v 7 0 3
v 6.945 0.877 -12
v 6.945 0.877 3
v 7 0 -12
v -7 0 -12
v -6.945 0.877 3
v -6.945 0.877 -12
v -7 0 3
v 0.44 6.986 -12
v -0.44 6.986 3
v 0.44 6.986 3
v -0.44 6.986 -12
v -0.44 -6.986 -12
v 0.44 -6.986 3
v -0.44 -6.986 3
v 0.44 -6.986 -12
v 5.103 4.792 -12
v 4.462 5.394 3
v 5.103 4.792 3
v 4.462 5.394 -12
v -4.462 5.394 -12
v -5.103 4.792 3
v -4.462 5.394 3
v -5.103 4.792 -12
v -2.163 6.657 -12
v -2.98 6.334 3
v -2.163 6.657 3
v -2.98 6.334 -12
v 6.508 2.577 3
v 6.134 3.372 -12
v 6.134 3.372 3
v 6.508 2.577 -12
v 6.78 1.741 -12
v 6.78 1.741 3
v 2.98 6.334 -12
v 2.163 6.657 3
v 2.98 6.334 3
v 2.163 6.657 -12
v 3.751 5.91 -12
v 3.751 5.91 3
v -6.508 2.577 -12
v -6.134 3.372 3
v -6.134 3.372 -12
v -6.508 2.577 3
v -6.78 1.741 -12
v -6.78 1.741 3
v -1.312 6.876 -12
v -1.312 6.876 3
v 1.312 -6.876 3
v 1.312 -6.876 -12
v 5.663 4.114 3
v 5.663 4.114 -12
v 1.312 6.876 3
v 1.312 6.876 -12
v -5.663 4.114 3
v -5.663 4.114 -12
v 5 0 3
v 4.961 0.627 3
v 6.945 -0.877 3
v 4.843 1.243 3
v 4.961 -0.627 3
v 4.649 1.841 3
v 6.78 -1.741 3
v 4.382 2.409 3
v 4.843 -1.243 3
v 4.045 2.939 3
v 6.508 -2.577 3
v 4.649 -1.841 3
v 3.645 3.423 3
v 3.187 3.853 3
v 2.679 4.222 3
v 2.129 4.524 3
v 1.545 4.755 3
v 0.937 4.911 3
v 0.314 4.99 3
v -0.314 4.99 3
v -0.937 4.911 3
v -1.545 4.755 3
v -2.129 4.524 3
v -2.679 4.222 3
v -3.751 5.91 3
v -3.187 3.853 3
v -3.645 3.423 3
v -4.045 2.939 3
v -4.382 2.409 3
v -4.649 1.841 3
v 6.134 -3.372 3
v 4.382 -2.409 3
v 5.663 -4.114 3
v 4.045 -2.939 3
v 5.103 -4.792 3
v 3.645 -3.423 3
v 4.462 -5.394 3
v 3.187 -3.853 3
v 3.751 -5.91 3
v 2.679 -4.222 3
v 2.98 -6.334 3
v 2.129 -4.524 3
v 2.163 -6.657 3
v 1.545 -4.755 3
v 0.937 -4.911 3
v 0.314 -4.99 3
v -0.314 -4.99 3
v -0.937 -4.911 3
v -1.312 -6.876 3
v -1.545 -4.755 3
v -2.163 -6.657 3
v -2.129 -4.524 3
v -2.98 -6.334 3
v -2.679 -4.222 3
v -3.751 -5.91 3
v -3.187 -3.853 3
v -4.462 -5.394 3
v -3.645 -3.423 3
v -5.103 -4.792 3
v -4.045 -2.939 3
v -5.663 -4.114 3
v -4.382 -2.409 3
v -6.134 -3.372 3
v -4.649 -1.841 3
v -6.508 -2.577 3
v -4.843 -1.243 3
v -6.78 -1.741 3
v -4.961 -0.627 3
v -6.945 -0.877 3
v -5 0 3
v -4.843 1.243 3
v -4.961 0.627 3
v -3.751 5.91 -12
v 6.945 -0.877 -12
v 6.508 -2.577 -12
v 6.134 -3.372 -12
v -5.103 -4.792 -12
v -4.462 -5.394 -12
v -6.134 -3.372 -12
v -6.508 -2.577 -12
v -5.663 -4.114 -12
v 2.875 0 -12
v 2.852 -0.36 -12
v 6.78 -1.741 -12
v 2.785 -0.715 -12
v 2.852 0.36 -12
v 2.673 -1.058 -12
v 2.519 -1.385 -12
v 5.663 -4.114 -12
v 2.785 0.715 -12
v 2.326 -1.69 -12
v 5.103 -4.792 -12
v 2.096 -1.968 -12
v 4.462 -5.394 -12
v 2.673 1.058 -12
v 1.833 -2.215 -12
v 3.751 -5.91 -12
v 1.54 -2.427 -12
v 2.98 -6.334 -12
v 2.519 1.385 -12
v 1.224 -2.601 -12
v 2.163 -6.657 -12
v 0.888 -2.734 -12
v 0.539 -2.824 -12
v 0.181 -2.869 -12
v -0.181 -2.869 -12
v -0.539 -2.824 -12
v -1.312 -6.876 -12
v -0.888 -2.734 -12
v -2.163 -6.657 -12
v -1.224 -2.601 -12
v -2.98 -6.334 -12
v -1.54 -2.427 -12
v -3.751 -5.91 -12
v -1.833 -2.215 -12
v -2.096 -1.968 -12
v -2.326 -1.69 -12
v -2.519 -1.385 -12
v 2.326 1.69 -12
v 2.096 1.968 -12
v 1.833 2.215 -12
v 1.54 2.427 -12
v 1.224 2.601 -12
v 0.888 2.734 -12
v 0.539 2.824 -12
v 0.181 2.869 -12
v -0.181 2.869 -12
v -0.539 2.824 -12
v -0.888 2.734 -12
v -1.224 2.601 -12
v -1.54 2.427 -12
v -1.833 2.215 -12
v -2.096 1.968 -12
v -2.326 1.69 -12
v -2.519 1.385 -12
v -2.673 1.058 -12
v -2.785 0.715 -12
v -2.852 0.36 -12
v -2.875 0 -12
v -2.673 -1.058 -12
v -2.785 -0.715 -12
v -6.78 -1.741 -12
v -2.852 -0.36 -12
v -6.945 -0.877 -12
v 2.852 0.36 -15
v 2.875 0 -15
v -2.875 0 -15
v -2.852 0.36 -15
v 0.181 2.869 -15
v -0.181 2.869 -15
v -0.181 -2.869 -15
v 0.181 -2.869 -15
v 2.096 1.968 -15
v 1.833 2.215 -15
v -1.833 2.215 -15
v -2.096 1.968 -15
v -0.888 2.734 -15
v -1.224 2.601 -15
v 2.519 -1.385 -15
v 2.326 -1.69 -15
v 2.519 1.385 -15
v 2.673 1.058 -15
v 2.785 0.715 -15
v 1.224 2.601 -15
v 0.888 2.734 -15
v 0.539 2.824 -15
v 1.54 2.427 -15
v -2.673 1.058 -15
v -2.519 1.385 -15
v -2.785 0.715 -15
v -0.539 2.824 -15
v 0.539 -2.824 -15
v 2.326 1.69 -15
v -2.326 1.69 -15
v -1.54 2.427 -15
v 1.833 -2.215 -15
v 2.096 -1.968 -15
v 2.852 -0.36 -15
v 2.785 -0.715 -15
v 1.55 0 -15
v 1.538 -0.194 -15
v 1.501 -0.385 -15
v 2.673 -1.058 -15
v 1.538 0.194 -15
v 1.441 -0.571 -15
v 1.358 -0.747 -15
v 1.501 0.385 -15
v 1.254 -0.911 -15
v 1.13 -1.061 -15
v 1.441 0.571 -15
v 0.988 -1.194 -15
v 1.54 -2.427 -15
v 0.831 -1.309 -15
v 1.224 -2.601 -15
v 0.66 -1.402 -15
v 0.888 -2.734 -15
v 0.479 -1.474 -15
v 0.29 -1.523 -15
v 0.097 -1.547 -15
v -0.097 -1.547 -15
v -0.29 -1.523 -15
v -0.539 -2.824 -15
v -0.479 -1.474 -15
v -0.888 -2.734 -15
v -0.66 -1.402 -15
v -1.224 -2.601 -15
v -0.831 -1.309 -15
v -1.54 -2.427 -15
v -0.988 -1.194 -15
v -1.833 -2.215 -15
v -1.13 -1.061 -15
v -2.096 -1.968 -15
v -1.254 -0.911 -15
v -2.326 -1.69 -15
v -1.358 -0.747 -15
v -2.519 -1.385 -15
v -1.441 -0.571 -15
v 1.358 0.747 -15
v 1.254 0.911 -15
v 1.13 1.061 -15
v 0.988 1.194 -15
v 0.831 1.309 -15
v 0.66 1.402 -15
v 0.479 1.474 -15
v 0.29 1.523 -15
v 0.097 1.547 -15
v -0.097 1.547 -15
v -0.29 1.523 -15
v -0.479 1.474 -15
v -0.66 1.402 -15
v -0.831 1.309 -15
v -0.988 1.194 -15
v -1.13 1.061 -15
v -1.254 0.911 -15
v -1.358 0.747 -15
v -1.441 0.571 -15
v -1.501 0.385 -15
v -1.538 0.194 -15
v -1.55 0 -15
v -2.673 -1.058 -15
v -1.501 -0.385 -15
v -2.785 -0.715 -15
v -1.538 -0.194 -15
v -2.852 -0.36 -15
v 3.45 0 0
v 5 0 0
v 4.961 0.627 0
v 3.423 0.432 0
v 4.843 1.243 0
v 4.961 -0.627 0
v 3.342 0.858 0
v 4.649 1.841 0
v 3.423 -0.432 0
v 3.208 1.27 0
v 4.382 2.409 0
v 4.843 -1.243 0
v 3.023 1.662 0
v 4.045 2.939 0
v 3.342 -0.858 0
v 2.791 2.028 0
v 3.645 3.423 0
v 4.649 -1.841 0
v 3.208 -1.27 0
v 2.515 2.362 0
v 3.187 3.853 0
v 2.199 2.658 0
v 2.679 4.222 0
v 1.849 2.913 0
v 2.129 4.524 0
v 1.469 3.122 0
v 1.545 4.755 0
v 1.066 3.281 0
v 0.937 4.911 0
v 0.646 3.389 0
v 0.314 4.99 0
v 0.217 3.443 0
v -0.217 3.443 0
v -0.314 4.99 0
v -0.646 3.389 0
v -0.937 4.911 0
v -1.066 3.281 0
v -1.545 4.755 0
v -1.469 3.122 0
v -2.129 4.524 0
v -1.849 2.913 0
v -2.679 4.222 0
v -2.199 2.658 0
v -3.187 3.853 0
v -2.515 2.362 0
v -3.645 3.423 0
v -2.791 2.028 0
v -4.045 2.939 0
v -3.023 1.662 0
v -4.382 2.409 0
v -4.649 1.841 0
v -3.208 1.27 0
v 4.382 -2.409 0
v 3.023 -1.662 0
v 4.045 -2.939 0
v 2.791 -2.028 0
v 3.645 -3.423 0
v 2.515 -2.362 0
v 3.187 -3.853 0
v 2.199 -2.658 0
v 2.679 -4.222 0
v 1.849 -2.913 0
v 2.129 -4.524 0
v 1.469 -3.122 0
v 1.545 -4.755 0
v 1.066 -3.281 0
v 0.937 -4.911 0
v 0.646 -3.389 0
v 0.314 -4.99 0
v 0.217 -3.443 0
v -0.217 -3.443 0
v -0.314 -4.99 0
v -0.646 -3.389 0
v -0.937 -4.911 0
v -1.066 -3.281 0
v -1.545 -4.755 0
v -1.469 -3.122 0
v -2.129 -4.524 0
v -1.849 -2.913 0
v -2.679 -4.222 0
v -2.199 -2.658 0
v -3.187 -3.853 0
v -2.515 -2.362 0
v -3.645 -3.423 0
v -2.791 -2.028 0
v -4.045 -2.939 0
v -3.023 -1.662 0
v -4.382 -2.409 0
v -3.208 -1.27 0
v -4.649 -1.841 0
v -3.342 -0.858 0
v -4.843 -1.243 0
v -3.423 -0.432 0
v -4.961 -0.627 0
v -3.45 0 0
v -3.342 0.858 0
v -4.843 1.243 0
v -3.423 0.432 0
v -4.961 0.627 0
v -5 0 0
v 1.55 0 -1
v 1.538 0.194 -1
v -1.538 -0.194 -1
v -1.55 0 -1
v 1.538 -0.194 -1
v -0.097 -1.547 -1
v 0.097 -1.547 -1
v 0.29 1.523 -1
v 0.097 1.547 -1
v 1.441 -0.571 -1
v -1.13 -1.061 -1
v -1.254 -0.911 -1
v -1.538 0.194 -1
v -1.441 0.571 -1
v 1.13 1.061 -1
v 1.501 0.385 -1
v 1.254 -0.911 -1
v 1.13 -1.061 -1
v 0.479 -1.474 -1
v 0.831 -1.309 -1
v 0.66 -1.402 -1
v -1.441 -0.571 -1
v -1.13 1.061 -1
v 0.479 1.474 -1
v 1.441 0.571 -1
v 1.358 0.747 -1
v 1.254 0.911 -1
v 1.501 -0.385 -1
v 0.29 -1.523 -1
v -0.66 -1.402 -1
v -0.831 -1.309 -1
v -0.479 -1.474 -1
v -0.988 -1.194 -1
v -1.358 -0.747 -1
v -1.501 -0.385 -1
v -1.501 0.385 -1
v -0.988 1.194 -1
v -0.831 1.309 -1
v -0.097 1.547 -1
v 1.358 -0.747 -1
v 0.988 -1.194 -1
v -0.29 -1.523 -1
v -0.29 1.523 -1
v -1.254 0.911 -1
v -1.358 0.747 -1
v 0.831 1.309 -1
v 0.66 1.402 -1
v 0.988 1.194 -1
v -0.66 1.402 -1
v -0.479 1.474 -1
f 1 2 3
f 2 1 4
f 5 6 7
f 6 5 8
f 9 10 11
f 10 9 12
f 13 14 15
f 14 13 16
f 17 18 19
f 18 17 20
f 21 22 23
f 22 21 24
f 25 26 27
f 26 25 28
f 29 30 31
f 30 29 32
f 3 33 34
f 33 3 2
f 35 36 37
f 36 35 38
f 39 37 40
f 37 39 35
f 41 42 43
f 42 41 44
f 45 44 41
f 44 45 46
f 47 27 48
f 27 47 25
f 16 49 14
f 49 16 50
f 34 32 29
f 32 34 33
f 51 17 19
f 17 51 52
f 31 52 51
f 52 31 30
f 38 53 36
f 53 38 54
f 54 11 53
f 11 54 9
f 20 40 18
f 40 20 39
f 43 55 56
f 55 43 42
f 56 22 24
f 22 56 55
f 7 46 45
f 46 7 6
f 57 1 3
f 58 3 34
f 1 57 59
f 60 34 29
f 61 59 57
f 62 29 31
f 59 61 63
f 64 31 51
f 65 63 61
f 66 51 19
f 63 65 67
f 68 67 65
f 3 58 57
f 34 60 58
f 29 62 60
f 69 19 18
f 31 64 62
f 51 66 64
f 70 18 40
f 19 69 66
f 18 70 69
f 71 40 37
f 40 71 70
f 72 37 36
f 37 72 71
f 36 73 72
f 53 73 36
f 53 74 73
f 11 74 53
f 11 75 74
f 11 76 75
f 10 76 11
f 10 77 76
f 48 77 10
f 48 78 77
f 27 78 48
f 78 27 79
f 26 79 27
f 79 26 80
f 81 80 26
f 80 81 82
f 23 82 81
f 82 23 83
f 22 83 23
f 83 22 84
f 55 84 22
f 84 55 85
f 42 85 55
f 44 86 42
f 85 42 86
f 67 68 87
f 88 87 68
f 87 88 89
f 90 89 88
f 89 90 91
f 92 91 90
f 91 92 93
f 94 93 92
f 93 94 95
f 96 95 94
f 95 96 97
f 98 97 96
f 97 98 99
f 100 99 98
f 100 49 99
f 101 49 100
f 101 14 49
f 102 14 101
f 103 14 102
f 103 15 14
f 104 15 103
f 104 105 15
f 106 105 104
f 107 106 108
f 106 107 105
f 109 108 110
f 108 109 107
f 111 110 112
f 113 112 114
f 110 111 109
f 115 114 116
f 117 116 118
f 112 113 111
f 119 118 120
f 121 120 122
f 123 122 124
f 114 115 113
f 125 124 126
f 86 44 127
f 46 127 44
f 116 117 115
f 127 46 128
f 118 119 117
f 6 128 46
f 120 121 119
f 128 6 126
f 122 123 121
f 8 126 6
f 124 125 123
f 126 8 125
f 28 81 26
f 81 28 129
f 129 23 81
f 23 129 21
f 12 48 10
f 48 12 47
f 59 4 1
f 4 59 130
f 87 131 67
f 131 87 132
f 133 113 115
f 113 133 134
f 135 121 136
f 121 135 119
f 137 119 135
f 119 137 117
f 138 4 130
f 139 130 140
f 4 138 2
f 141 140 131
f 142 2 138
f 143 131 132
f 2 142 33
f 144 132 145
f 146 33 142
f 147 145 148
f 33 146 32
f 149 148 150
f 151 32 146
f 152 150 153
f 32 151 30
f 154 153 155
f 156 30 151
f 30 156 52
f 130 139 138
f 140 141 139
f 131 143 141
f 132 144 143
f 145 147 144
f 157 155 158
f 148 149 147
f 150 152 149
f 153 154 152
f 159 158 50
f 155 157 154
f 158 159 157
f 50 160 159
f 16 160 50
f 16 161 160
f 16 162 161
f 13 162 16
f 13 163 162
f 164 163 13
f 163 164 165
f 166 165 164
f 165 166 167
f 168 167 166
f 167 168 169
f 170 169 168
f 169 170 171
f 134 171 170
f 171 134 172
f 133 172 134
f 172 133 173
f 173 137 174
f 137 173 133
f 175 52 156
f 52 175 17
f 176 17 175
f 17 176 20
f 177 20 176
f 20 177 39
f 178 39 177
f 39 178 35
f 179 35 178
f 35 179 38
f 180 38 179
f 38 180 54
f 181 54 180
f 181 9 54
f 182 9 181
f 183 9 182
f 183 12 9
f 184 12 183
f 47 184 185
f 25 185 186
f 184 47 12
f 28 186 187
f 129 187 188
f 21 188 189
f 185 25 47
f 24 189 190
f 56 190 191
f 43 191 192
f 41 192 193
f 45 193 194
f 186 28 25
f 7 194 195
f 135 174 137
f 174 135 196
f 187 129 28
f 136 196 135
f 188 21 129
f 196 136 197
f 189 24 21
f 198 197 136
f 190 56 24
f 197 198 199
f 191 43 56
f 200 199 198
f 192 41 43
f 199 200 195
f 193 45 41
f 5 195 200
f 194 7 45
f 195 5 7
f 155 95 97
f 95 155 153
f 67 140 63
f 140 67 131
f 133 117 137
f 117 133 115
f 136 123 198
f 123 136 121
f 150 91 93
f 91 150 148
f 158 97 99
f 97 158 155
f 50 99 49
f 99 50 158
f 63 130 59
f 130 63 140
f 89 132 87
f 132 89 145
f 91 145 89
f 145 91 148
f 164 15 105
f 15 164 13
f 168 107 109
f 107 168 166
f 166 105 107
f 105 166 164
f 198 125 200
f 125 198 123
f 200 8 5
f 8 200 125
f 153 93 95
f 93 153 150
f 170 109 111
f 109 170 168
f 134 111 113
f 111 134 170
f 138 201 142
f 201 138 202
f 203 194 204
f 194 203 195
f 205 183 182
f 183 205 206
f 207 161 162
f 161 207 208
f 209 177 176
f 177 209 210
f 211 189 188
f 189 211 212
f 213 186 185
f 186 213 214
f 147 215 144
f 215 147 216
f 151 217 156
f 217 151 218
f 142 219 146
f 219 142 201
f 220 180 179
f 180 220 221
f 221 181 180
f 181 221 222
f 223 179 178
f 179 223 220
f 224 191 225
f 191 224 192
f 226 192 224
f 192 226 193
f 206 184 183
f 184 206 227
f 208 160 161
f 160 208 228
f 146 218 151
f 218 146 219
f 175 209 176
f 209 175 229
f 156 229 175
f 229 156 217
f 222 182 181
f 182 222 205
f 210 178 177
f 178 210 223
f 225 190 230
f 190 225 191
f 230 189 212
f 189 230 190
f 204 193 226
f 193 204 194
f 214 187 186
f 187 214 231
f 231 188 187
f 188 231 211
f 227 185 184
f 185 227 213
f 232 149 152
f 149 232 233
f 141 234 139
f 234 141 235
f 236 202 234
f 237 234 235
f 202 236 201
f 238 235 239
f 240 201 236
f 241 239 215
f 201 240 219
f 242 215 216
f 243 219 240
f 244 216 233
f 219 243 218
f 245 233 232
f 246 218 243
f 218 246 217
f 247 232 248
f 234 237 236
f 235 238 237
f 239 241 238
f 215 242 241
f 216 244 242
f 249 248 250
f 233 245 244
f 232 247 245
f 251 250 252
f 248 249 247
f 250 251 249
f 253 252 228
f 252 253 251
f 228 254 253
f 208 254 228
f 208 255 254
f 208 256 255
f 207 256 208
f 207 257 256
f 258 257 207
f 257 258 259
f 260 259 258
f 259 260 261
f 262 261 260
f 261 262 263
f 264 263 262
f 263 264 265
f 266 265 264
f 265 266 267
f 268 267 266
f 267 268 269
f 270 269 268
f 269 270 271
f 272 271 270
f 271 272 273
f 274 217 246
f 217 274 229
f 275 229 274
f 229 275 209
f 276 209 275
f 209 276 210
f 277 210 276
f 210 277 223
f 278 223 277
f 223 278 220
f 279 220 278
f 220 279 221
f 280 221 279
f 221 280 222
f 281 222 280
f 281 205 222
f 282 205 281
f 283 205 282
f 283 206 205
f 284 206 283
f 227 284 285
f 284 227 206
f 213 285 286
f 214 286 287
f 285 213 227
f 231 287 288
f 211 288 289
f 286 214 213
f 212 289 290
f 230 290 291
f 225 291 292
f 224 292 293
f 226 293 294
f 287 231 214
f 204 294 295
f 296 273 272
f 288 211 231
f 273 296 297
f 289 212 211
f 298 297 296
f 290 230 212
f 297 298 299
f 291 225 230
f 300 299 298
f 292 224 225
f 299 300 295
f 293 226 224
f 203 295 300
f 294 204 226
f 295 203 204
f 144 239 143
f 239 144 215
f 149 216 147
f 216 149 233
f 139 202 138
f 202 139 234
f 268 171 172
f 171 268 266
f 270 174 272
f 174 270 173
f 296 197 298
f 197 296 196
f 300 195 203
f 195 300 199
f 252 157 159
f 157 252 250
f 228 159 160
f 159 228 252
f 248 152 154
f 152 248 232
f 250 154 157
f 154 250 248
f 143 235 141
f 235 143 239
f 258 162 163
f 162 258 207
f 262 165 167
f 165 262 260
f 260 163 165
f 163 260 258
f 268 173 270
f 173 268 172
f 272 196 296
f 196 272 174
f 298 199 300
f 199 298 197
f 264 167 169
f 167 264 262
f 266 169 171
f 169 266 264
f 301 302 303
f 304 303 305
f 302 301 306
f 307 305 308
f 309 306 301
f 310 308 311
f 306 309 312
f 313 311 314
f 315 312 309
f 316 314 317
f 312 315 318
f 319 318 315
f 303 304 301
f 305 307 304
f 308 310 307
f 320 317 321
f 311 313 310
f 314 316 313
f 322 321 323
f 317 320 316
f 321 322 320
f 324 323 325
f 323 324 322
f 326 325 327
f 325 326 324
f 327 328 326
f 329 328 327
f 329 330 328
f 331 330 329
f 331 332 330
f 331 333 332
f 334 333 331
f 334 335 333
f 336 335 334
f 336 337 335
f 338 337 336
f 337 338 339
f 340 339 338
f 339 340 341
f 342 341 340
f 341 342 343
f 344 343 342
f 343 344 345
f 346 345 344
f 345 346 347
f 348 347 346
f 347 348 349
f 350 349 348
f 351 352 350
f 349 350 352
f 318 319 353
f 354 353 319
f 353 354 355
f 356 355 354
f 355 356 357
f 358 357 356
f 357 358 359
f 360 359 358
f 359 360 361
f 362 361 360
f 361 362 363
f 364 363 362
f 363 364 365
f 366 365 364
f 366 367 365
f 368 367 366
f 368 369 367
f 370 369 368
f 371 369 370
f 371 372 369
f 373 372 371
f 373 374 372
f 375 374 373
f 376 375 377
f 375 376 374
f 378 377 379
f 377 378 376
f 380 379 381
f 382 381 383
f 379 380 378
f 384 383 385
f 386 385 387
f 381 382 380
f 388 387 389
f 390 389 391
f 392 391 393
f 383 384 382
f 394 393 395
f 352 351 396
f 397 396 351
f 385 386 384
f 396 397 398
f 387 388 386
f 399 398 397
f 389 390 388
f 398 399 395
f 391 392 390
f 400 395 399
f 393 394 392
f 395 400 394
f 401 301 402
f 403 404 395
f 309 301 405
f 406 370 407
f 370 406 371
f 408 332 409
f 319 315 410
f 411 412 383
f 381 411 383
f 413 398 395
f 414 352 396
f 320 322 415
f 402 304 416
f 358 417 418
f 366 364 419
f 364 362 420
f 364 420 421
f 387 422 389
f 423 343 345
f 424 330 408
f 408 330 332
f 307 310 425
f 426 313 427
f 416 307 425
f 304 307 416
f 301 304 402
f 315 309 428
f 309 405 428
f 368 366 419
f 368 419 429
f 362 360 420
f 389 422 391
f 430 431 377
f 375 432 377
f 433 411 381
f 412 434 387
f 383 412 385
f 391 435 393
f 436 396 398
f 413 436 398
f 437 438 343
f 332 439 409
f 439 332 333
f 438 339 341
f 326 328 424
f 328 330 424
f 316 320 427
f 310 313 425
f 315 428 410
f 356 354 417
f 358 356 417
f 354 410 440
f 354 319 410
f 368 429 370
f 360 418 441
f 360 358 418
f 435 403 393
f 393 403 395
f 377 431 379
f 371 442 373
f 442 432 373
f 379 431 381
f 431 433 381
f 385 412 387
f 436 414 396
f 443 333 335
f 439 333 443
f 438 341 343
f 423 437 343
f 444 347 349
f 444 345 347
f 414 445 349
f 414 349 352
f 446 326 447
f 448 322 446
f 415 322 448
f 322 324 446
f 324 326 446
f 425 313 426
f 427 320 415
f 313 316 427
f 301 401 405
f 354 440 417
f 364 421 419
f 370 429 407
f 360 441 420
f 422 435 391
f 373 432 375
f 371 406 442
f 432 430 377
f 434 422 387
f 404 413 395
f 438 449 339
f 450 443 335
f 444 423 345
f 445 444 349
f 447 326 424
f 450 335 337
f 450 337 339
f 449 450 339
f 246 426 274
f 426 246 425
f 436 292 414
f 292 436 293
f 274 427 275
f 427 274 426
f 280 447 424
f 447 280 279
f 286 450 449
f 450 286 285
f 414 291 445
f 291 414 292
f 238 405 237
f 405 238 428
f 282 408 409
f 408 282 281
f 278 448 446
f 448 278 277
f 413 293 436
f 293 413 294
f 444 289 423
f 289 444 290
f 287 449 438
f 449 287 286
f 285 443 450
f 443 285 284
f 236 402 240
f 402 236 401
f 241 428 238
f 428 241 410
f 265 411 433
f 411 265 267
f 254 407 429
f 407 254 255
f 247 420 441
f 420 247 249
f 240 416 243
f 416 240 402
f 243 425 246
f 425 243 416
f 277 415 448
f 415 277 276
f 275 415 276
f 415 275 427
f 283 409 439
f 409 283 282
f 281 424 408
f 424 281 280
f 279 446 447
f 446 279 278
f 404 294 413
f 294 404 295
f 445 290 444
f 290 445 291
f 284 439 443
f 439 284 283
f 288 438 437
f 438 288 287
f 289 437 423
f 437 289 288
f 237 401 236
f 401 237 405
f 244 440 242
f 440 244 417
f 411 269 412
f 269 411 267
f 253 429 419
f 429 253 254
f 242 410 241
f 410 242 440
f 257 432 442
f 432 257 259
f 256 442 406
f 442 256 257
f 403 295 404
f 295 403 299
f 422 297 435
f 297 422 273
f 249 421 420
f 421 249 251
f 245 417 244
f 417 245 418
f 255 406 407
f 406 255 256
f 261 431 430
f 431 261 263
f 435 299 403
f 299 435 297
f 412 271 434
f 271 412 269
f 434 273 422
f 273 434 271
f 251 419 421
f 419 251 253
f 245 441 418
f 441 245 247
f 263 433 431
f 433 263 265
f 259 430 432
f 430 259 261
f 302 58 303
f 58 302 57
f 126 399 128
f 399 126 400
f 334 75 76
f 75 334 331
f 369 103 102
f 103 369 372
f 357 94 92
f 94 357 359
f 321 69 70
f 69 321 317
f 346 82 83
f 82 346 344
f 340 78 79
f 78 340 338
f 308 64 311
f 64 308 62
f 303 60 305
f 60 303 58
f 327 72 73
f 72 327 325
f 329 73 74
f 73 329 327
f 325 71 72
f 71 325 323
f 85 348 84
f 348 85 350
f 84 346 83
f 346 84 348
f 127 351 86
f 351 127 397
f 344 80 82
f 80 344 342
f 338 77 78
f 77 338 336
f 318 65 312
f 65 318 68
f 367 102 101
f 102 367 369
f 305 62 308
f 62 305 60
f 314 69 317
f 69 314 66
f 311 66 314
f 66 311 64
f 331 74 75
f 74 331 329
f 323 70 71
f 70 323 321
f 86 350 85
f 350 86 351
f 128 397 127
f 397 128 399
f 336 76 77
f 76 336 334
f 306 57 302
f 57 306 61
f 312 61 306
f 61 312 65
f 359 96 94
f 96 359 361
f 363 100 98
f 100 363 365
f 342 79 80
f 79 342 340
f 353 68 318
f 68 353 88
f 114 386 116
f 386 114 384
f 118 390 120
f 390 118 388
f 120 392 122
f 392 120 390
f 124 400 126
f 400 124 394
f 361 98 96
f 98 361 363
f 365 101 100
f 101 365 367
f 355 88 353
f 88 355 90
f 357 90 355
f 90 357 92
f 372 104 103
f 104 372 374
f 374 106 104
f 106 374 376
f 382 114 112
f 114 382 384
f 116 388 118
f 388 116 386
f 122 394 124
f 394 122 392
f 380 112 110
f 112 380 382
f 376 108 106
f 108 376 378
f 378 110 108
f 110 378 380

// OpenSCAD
$fn = 50;

difference() {
	union() {
		translate(v = [0, 0, -12.0]) {
			cylinder(h = 15, r = 7.0);
		}
		#translate(v = [0, 0, -15.0]) {
			cylinder(h = 15, r = 2.875);
		}
	}
	union() {
		translate(v = [0, 0, 0]) {
			rotate(a = [0, 0, 0]) {
				difference() {
					union() {
						translate(v = [0, 0, -15.0]) {
							cylinder(h = 15, r = 1.25);
						}
						translate(v = [0, 0, -1.0]) {
							cylinder(h = 1.0, r1 = 1.55, r2 = 3.45);
						}
						translate(v = [0, 0, -15.0]) {
							cylinder(h = 15, r = 1.55);
						}
						translate(v = [0, 0, -15.0]) {
							cylinder(h = 15, r = 1.25);
						}
					}
					union();
				}
			}
		}
		#cylinder(h = 3, r = 5.0);
	}
}
